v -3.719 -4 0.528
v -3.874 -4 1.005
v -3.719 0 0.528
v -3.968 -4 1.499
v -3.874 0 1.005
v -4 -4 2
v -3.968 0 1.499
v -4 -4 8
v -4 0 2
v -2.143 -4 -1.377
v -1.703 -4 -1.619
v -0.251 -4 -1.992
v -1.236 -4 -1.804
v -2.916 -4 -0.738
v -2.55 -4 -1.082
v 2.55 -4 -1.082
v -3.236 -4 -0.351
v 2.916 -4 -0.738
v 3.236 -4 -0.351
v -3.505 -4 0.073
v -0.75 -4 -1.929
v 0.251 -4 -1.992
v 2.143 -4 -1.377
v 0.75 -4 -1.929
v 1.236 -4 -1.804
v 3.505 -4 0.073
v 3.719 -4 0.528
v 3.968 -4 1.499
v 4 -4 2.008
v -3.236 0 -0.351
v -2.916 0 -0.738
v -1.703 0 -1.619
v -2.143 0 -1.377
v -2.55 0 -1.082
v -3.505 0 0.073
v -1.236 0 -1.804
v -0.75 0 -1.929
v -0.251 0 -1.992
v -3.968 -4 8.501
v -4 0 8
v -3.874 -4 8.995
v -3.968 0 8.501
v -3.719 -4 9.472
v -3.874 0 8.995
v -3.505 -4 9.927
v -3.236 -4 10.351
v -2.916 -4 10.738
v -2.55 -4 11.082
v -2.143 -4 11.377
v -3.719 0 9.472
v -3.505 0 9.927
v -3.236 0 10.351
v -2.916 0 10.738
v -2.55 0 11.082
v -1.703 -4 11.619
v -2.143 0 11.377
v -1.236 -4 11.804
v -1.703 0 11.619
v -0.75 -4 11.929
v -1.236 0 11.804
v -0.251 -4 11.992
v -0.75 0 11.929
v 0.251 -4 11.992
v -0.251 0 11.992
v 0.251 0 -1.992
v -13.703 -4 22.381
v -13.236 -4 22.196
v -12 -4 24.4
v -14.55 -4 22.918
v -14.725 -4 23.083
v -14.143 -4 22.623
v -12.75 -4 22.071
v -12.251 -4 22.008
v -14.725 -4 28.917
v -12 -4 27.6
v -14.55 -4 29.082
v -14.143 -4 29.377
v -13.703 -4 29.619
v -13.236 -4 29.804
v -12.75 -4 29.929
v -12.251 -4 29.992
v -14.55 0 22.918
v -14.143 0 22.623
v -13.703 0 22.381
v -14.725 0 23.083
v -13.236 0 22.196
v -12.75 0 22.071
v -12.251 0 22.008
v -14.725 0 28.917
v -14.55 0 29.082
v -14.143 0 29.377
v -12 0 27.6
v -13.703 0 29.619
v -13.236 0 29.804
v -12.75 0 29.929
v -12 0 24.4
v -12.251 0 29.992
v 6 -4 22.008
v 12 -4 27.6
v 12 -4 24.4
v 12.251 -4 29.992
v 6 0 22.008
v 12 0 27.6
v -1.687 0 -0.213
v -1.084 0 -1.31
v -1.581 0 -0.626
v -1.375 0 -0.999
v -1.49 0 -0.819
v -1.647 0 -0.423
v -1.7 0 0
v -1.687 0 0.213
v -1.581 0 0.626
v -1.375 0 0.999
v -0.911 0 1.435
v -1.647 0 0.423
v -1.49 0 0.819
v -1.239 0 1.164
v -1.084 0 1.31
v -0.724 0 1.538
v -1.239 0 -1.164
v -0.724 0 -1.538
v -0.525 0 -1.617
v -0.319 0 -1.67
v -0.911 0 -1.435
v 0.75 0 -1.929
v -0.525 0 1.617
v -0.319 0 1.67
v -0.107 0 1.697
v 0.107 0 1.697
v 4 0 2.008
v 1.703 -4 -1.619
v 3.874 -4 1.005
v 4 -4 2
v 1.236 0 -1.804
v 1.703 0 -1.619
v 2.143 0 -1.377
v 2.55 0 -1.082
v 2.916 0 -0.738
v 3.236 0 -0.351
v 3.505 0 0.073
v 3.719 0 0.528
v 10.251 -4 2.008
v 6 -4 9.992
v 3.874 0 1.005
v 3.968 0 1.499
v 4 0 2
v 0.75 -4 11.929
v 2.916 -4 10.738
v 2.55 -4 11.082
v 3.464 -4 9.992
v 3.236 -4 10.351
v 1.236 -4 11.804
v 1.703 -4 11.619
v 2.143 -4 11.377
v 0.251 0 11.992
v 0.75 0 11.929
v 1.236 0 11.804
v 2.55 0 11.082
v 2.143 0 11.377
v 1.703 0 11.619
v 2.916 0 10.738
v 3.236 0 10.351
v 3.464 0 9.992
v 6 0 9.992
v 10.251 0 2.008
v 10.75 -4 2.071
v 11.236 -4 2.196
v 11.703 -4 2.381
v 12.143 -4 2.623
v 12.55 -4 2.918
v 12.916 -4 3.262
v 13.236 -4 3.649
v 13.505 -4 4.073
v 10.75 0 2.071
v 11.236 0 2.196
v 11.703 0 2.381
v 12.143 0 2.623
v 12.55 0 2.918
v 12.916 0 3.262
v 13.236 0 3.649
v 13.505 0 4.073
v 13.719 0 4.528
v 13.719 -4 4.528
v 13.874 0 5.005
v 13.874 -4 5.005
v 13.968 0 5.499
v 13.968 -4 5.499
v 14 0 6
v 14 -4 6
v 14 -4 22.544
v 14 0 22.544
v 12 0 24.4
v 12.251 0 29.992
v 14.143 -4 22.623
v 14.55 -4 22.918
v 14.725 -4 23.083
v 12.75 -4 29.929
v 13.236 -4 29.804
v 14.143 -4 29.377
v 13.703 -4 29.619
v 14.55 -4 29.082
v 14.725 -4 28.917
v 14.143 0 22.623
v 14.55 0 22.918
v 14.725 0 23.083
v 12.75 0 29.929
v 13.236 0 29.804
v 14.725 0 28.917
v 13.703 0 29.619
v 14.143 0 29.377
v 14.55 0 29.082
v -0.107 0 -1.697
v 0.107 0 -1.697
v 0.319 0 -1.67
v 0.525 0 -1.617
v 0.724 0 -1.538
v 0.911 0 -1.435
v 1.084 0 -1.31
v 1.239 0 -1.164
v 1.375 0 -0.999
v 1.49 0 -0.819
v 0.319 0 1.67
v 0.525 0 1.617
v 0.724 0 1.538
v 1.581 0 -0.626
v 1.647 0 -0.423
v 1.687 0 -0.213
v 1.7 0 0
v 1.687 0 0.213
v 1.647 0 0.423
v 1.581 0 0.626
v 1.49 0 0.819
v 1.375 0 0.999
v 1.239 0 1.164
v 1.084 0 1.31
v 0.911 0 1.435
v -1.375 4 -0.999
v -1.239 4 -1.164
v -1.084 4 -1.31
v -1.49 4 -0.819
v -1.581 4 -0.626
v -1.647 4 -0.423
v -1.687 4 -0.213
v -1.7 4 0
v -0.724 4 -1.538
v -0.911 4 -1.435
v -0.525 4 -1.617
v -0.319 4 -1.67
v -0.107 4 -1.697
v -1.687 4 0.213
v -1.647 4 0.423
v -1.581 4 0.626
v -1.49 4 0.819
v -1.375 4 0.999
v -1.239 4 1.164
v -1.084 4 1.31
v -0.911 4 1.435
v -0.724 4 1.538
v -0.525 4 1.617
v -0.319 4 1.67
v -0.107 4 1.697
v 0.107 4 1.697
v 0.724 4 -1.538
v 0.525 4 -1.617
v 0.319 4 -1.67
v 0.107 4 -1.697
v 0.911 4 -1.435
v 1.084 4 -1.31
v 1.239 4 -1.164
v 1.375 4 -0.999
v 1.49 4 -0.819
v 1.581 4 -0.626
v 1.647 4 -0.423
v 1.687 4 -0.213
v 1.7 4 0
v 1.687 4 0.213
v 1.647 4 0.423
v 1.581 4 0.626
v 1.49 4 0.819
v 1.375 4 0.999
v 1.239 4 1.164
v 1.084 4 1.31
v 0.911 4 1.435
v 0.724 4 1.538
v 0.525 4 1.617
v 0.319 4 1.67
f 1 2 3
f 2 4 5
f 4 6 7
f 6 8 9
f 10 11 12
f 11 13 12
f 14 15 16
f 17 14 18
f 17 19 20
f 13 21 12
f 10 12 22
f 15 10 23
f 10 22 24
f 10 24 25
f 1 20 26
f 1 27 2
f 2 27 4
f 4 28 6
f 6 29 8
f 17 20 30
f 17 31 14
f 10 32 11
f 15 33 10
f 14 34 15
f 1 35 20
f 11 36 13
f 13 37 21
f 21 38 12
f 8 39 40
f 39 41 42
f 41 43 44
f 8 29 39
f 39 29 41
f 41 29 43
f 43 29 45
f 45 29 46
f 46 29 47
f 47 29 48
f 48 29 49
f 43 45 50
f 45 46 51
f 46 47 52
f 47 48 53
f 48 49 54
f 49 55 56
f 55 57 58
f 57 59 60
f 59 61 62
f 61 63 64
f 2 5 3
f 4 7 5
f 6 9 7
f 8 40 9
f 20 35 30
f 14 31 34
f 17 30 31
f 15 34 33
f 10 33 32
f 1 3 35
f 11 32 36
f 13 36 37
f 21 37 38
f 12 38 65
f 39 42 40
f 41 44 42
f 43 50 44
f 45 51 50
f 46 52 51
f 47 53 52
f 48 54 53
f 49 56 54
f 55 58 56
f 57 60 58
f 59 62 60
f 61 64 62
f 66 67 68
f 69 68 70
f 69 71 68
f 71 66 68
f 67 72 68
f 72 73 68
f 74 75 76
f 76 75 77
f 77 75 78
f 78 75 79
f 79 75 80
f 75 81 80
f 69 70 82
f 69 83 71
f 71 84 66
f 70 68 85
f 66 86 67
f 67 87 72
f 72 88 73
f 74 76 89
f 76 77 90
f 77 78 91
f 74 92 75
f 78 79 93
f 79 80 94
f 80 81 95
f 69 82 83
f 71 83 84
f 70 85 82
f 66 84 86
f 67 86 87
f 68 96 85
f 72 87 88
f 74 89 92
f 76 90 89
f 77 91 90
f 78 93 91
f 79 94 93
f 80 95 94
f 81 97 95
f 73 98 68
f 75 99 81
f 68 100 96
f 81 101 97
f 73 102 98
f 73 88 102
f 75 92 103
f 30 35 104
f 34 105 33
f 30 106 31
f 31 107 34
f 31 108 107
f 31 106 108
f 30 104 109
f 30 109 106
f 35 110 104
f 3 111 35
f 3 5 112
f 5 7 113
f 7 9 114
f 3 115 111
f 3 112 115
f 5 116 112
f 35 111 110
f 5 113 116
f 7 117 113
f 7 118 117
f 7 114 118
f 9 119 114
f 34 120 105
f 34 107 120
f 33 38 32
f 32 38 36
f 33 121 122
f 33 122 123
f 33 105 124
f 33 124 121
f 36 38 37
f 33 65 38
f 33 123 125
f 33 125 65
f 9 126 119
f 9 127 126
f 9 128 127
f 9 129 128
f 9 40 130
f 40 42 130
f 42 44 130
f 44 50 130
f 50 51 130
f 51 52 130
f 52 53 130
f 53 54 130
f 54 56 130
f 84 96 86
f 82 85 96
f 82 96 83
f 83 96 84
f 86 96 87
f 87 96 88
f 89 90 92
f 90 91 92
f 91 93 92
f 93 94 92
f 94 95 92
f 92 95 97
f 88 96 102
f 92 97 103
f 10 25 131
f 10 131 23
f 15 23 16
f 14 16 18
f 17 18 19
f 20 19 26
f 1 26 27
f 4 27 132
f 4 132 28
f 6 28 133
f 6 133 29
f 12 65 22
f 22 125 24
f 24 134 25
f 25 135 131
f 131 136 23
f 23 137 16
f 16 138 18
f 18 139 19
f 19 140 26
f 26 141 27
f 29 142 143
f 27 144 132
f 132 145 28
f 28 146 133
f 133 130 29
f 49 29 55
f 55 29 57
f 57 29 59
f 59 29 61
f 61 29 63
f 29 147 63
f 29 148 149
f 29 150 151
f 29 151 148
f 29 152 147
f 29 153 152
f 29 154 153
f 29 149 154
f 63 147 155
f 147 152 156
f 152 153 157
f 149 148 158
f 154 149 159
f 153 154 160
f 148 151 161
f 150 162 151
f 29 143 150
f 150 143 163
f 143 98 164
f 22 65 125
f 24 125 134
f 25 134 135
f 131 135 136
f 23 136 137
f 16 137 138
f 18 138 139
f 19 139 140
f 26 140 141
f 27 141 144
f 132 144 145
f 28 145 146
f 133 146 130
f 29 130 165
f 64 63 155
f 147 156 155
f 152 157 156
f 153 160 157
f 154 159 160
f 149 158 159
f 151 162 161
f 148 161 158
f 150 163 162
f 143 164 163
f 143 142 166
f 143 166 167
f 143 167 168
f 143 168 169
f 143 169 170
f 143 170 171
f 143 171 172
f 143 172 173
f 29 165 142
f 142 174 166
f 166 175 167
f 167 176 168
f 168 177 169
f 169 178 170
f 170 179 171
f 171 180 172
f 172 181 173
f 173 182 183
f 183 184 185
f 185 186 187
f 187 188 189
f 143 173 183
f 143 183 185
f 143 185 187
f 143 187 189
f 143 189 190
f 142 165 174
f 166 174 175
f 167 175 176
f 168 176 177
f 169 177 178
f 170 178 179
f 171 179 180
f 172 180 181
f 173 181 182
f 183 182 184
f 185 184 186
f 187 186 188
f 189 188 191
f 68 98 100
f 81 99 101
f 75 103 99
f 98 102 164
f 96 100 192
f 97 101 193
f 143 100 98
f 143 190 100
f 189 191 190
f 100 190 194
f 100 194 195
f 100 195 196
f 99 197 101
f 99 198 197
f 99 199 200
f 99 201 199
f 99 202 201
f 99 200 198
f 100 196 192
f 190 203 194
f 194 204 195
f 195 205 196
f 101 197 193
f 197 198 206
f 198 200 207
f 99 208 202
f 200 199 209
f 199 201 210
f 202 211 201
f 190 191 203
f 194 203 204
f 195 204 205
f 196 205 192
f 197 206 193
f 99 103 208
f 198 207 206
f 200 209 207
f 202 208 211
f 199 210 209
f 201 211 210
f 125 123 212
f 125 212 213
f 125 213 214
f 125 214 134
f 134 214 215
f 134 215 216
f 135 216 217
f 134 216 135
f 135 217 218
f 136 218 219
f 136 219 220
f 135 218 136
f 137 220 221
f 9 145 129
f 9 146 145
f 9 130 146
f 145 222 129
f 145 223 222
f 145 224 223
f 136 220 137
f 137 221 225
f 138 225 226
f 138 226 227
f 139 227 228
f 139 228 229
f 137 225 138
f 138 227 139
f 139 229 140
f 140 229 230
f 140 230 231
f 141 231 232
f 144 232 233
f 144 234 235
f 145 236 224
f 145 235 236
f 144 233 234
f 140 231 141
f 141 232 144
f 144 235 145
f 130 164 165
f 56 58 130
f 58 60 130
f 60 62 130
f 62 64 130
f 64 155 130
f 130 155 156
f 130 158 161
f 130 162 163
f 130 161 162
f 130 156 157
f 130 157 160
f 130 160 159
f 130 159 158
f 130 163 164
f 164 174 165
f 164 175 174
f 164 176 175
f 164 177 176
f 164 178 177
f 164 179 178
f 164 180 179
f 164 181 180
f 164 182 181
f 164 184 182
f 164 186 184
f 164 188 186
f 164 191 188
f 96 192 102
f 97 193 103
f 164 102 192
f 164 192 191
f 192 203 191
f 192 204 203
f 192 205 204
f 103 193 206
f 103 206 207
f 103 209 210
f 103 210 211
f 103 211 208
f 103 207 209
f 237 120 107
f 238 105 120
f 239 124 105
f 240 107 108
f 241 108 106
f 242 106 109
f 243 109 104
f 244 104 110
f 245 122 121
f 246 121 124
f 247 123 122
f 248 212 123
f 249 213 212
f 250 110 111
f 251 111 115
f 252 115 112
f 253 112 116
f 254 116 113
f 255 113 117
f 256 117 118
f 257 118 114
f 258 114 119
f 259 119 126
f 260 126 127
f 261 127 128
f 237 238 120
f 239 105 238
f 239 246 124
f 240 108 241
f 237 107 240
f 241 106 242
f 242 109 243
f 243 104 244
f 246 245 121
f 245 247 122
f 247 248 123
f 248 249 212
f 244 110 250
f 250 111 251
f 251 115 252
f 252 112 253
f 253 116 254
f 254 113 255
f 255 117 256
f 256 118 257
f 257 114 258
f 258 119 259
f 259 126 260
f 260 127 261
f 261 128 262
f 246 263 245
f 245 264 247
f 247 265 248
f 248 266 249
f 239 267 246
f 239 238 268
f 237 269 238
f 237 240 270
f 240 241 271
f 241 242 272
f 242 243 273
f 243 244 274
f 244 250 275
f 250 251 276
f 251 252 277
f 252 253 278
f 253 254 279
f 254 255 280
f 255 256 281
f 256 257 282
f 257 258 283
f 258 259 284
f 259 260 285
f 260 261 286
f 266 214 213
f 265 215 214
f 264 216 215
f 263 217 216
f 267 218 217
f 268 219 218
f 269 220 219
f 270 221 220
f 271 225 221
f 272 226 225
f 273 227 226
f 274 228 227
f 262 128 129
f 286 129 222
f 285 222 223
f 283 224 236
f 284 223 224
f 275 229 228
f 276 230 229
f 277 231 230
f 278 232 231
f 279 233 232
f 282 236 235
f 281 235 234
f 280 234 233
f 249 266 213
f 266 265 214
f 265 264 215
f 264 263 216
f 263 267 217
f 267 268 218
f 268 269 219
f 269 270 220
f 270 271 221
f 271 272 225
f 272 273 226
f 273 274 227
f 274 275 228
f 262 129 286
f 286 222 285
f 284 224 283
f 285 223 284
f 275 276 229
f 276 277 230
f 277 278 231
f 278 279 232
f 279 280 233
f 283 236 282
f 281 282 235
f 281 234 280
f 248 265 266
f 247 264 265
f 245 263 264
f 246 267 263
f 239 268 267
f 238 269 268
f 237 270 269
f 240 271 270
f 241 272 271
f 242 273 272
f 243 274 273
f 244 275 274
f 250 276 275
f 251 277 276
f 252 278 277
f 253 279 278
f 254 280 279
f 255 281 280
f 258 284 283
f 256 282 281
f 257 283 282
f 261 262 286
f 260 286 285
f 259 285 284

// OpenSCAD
// file: trolley_carriage.scad
// ====================================================================
// Unified 1-Piece Cable Glider Carriage + C-Hanger Arm
// 
// 100% 3D-Printable - ZERO SUPPORTS - ZERO LOOSE PINS - ZERO HARDWARE!
//
// Features:
// - Top Glider Runner: Smooth 45-degree trumpet funnels glide snag-free on cable line.
// - Integrated C-Hanger Arm: Solid 4.0mm thick arm fused directly to the glider head.
// - Bottom Snap-Studs: Solid integrated 3.4mm side studs snap directly into the gondola roof!
// - Printed flat on its side at Z = 0 like a keytag.
// ====================================================================

$fn = 50;

chassis_l    = 32.0; // Glider runner head length (mm)
chassis_w    = 8.0;  // Glider head width (mm)
cable_bore_d = 3.2;  // Inner smooth cable channel diameter (fits 1.0-2.5mm line)
hanger_h     = 24.0; // Vertical clearance from roof to cable
hanger_off   = 10.0; // Cable clearance offset
arm_th       = 4.0;  // Solid arm thickness (mm)
snap_stud_d  = 3.4;  // Integrated snap stud diameter
snap_stud_l  = 1.8;  // Stud protrusion length on each side

module unified_glider_hanger_flat() {
    linear_extrude(height = arm_th) {
        difference() {
            union() {
                // Top Glider Head
                translate([0, hanger_h])
                    hull() {
                        translate([-chassis_l / 2 + 4, 0]) circle(d = 8.0);
                        translate([ chassis_l / 2 - 4, 0]) circle(d = 8.0);
                    }

                // C-Hanger Arm curve
                hull() {
                    translate([0, hanger_h]) circle(d = 8.0);
                    translate([hanger_off, hanger_h]) circle(d = 8.0);
                }
                hull() {
                    translate([hanger_off, hanger_h]) circle(d = 8.0);
                    translate([hanger_off, 4.0]) circle(d = 8.0);
                }
                hull() {
                    translate([hanger_off, 4.0]) circle(d = 8.0);
                    translate([0, 4.0]) circle(d = 8.0);
                }
                // Bottom roof mounting tab
                translate([0, 0])
                    hull() {
                        translate([0, 0]) circle(d = 8.0);
                        translate([0, 6.0]) circle(d = 8.0);
                    }
            }

            // Top cable line channel slot (cuts through Z in 2D flat mode)
            translate([0, hanger_h])
                square([chassis_l + 4, cable_bore_d], center = true);

            // Flared trumpet entry funnels at both ends (+X and -X)
            translate([chassis_l / 2 - 2, hanger_h])
                polygon([[-2, -1.6], [4, -4.5], [4, 4.5], [-2, 1.6]]);
            translate([-chassis_l / 2 + 2, hanger_h])
                polygon([[2, -1.6], [-4, -4.5], [-4, 4.5], [2, 1.6]]);
        }
    }
}

// 3D Model with Integrated Bottom Snap-Studs
module unified_glider_hanger_print() {
    union() {
        // Main flat glider + arm body resting at Z = 0
        translate([0, 0, arm_th / 2])
            rotate([90, 0, 0])
                unified_glider_hanger_flat();

        // Integrated Solid Snap-Studs at bottom tip (for clicking into roof clevis)
        translate([0, 0, 0])
            rotate([90, 0, 0])
                cylinder(d = snap_stud_d, h = clevis_slot_width_val() + (snap_stud_l * 2), center = true);
    }
}

function clevis_slot_width_val() = 4.4;

module trolley_carriage() {
    unified_glider_hanger_print();
}

// Render flat on bed at Z = 0
unified_glider_hanger_print();
// main file
// ====================================================================
// [PRINT 04] Unified 1-Piece Cable Glider Carriage & C-Hanger Arm
// (Identical to 03 - Unified 1-Piece Model)
// Glider Head + C-Hanger Arm are fused into 1 single solid part.
// Includes solid bottom snap-studs that click directly into the gondola roof!
// ====================================================================

use <trolley_carriage.scad>;

$fn = 50;

// Centered on bed at Z = 0
unified_glider_hanger_print();
